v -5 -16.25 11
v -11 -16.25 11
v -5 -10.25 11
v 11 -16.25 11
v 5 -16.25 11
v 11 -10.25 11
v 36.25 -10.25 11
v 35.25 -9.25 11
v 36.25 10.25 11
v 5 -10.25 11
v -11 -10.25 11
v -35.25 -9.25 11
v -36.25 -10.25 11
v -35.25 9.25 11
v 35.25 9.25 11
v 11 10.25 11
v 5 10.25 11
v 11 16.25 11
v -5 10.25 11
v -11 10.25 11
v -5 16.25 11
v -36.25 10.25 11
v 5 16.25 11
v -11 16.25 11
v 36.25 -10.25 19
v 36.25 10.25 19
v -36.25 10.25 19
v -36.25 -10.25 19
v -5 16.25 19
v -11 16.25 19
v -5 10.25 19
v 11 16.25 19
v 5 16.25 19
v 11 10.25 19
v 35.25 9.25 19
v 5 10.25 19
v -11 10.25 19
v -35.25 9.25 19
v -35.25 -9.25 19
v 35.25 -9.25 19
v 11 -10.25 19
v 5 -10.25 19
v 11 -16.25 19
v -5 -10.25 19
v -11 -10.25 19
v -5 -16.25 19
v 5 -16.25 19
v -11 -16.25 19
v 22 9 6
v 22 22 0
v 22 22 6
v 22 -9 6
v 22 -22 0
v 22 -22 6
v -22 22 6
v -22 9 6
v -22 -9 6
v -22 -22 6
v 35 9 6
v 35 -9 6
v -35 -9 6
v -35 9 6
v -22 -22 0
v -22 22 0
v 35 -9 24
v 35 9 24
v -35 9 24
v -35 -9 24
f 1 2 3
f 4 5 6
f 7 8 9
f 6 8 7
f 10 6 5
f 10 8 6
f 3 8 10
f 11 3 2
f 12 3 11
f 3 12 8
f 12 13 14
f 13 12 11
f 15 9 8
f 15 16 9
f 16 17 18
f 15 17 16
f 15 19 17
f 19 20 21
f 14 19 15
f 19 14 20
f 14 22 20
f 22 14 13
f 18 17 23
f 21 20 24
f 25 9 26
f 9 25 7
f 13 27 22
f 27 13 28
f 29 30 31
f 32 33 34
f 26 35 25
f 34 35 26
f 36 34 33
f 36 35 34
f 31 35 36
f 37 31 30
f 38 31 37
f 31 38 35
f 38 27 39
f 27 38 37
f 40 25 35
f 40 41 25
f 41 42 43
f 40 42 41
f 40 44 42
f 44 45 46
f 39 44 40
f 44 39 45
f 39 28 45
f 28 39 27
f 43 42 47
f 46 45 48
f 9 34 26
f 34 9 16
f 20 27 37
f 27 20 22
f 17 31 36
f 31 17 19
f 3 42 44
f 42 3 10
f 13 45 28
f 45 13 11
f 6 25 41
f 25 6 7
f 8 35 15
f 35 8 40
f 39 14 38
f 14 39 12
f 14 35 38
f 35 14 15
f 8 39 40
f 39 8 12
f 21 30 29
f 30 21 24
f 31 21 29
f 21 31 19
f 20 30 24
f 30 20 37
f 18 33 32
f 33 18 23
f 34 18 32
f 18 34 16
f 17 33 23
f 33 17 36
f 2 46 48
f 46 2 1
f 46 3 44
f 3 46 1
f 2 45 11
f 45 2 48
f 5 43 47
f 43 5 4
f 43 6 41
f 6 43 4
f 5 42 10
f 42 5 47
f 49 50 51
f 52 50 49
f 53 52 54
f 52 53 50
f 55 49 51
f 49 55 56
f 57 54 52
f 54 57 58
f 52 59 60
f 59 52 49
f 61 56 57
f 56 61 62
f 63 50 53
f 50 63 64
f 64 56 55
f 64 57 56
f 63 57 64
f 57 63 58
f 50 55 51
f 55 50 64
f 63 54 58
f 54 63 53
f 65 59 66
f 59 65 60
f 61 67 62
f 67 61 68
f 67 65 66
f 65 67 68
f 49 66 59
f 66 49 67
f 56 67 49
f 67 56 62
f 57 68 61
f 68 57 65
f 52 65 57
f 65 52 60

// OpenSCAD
color ([0.2, 0.2, 0.2, ]) {
  translate ([0, 0, 3]) {
    cube ([44, 44, 6], center=true);
  }
}
color ([0.9, 0.9, 0.9, ]) {
  translate ([0, 0, 15]) {
    rotate (a=90.0, v=[0, 1, 0]) {
      cube ([18, 18, 70], center=true);
    }
  }
}
color ([0.44, 0.84, 0.15, ]) {
  translate ([0, 0, 15]) {
    rotate (a=90.0, v=[0, 1, 0]) {
      union () {
        difference () {
          cube ([8, 20.5, 72.5], center=true);
          cube ([1000, 18.5, 70.5], center=true);
        }
        translate ([0, 13.25, 0]) {
          rotate (a=90.0, v=[1, 0, 0]) {
            union () {
              translate ([0, -8, 0]) {
                cube ([8, 6, 6], center=true);
              }
              translate ([0, 8, 0]) {
                cube ([8, 6, 6], center=true);
              }
            }
          }
        }
        translate ([0, -13.25, 0]) {
          rotate (a=90.0, v=[1, 0, 0]) {
            union () {
              translate ([0, -8, 0]) {
                cube ([8, 6, 6], center=true);
              }
              translate ([0, 8, 0]) {
                cube ([8, 6, 6], center=true);
              }
            }
          }
        }
      }
    }
  }
}
